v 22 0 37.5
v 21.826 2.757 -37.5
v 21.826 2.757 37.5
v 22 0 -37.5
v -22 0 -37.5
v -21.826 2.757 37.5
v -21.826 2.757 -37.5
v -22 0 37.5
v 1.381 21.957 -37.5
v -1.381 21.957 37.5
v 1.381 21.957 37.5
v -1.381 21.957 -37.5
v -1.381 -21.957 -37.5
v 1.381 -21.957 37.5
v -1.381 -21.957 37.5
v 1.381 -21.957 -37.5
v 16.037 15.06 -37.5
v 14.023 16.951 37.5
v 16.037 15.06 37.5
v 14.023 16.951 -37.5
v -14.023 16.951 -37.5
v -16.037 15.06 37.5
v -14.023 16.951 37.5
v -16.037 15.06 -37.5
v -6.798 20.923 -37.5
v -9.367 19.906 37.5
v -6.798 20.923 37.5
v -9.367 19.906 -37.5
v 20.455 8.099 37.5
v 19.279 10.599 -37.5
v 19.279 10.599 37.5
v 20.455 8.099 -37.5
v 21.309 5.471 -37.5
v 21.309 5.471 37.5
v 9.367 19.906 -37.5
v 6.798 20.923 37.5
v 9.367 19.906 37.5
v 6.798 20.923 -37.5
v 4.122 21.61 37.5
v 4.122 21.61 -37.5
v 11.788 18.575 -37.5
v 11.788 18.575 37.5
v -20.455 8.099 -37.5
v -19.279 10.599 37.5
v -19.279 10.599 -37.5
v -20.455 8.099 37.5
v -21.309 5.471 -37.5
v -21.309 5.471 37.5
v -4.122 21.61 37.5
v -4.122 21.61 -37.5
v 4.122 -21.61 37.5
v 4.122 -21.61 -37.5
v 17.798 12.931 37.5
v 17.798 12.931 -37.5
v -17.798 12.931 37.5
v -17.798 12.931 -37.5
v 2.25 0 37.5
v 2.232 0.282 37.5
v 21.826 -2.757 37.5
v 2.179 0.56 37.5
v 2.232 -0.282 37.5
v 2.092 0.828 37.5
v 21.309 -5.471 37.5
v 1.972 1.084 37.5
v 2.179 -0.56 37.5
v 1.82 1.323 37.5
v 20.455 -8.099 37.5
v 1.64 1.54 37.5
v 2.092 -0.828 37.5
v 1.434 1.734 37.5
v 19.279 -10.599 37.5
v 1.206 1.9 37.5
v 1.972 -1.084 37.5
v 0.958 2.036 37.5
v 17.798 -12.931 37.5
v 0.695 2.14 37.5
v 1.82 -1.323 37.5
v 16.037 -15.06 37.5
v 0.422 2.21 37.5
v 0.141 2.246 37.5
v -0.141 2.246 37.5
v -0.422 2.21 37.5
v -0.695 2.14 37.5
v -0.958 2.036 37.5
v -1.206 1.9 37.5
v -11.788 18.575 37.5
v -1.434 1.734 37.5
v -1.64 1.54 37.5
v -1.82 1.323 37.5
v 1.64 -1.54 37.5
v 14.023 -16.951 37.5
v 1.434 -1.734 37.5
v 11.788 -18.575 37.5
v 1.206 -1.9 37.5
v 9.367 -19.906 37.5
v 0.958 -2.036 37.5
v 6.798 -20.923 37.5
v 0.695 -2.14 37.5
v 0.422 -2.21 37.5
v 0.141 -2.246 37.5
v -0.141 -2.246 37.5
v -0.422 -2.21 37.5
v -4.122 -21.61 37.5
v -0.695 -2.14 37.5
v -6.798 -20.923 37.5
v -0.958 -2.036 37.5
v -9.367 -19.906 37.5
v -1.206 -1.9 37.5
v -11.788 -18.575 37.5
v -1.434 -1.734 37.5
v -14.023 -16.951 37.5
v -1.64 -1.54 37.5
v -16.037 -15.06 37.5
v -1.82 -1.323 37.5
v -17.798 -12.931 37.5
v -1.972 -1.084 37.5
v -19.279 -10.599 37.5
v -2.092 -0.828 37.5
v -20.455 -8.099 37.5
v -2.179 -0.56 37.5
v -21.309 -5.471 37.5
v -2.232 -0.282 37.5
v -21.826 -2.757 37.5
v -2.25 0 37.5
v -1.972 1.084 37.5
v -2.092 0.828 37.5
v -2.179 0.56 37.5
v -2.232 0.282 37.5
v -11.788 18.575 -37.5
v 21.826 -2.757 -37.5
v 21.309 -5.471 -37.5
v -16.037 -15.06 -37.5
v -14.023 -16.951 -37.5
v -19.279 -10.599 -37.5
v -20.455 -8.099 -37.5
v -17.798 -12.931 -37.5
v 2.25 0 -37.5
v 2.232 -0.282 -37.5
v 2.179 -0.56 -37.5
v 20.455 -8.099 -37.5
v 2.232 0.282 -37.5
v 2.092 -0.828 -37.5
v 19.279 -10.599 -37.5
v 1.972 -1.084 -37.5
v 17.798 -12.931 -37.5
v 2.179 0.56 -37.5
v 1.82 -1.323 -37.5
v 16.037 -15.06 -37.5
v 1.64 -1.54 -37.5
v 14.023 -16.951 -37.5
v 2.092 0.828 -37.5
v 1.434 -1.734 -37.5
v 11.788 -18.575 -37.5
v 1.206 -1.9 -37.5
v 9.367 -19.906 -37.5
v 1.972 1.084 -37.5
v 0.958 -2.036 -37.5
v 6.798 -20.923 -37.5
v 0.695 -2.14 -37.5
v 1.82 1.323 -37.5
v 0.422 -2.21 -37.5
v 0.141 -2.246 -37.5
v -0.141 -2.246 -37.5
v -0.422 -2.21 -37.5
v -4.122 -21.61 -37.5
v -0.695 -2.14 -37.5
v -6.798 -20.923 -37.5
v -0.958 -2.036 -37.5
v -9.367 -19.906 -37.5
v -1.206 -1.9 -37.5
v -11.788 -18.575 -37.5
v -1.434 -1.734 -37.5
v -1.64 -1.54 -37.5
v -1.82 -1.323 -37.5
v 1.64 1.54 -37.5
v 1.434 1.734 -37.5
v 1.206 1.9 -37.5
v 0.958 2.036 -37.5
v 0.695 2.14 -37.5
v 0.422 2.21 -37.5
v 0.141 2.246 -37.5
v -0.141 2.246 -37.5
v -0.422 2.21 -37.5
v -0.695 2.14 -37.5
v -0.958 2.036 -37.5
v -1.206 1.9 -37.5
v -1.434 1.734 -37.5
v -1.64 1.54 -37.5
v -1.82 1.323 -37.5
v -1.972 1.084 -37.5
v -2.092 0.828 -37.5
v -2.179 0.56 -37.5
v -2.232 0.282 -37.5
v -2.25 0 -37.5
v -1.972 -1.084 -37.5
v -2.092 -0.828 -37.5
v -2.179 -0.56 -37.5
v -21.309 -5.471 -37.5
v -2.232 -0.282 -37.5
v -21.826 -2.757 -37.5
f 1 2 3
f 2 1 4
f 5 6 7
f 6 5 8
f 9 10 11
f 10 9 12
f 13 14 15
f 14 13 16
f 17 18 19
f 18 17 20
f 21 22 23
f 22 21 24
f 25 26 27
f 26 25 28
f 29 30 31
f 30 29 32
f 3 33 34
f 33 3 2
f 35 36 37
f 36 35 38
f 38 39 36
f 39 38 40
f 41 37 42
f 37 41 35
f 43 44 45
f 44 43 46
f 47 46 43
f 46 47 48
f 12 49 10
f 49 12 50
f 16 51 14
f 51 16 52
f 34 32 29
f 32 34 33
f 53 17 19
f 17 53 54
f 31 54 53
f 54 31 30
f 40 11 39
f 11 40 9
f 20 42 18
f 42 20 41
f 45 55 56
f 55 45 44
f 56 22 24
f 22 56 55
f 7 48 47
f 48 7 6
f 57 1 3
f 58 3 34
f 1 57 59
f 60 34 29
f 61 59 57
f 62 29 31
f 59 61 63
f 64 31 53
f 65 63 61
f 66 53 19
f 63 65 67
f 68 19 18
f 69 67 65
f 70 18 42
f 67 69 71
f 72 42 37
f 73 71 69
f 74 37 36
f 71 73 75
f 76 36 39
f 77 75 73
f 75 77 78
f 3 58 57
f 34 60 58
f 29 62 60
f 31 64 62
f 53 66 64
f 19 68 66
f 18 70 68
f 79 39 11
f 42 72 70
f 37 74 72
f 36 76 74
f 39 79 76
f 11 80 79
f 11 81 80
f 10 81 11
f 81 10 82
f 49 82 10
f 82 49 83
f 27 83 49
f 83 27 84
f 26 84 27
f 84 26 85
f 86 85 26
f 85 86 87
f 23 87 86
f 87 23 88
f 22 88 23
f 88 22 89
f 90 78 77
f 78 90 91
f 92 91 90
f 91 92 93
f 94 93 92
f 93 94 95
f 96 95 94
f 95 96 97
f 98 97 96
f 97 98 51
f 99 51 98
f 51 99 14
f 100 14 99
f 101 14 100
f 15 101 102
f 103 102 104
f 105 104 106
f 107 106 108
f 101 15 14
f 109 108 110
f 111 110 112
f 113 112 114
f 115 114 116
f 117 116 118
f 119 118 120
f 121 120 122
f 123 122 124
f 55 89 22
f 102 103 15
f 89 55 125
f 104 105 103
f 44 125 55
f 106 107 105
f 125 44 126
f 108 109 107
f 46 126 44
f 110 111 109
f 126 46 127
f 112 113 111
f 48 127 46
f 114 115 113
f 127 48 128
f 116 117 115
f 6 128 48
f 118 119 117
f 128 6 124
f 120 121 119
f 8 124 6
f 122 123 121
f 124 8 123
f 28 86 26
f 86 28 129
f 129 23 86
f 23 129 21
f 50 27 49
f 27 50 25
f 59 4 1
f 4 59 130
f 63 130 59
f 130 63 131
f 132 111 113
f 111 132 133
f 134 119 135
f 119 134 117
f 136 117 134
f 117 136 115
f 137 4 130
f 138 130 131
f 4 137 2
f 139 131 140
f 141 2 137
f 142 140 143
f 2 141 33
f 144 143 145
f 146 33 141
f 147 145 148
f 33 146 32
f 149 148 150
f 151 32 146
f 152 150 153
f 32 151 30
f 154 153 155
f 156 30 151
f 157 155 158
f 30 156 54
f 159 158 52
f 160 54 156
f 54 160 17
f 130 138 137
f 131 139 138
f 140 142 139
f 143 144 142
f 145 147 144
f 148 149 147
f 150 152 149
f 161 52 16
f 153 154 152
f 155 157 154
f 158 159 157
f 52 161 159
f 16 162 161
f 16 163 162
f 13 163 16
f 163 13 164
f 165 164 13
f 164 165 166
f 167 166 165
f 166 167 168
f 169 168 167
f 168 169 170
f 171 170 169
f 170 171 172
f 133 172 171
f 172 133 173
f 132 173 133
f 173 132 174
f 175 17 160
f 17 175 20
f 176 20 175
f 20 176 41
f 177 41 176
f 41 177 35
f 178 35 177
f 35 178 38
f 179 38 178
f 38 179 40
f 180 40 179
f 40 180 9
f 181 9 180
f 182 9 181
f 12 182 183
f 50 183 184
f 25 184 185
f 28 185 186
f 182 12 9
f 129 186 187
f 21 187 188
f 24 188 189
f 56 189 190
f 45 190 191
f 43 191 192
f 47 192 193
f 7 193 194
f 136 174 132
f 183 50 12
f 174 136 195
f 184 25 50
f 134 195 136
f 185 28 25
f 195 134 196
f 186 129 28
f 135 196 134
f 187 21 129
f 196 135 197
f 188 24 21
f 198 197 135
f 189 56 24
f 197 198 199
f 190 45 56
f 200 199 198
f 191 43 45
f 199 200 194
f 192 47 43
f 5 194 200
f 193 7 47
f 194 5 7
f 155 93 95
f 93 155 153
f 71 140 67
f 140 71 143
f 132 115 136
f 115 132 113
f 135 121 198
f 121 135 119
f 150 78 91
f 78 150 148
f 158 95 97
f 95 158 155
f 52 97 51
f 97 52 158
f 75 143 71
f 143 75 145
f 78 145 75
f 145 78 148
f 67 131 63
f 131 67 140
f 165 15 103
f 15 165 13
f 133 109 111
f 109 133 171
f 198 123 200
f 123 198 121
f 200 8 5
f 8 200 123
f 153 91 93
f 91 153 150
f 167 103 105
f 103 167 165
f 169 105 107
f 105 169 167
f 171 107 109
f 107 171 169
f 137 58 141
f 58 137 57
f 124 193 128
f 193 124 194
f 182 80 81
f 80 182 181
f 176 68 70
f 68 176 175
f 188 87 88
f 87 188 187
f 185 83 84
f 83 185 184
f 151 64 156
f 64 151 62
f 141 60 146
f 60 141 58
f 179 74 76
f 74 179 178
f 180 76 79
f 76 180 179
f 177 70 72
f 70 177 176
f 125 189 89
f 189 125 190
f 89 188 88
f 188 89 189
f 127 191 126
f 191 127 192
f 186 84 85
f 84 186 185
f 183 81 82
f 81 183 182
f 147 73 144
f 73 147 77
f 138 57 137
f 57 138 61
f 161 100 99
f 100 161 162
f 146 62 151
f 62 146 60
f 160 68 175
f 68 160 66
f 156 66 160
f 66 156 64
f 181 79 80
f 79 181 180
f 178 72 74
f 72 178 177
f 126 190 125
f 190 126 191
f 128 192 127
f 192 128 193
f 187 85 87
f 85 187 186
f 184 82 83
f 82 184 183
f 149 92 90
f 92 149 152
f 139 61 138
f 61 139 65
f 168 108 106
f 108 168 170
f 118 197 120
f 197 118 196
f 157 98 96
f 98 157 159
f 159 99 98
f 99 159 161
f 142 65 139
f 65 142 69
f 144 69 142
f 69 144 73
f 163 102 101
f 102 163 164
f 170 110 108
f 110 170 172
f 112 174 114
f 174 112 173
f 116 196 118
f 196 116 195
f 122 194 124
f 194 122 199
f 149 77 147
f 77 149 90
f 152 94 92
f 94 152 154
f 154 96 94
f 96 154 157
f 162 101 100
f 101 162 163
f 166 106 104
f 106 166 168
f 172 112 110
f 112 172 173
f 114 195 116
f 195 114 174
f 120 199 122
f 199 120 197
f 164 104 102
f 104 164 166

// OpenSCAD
$fn = 50;


difference() {
	union() {
		translate(v = [0, 0, -37.5000000000]) {
			cylinder(h = 75, r = 22.0000000000);
		}
	}
	union() {
		translate(v = [0, 0, -100.0000000000]) {
			cylinder(h = 200, r = 2.2500000000);
		}
	}
}
